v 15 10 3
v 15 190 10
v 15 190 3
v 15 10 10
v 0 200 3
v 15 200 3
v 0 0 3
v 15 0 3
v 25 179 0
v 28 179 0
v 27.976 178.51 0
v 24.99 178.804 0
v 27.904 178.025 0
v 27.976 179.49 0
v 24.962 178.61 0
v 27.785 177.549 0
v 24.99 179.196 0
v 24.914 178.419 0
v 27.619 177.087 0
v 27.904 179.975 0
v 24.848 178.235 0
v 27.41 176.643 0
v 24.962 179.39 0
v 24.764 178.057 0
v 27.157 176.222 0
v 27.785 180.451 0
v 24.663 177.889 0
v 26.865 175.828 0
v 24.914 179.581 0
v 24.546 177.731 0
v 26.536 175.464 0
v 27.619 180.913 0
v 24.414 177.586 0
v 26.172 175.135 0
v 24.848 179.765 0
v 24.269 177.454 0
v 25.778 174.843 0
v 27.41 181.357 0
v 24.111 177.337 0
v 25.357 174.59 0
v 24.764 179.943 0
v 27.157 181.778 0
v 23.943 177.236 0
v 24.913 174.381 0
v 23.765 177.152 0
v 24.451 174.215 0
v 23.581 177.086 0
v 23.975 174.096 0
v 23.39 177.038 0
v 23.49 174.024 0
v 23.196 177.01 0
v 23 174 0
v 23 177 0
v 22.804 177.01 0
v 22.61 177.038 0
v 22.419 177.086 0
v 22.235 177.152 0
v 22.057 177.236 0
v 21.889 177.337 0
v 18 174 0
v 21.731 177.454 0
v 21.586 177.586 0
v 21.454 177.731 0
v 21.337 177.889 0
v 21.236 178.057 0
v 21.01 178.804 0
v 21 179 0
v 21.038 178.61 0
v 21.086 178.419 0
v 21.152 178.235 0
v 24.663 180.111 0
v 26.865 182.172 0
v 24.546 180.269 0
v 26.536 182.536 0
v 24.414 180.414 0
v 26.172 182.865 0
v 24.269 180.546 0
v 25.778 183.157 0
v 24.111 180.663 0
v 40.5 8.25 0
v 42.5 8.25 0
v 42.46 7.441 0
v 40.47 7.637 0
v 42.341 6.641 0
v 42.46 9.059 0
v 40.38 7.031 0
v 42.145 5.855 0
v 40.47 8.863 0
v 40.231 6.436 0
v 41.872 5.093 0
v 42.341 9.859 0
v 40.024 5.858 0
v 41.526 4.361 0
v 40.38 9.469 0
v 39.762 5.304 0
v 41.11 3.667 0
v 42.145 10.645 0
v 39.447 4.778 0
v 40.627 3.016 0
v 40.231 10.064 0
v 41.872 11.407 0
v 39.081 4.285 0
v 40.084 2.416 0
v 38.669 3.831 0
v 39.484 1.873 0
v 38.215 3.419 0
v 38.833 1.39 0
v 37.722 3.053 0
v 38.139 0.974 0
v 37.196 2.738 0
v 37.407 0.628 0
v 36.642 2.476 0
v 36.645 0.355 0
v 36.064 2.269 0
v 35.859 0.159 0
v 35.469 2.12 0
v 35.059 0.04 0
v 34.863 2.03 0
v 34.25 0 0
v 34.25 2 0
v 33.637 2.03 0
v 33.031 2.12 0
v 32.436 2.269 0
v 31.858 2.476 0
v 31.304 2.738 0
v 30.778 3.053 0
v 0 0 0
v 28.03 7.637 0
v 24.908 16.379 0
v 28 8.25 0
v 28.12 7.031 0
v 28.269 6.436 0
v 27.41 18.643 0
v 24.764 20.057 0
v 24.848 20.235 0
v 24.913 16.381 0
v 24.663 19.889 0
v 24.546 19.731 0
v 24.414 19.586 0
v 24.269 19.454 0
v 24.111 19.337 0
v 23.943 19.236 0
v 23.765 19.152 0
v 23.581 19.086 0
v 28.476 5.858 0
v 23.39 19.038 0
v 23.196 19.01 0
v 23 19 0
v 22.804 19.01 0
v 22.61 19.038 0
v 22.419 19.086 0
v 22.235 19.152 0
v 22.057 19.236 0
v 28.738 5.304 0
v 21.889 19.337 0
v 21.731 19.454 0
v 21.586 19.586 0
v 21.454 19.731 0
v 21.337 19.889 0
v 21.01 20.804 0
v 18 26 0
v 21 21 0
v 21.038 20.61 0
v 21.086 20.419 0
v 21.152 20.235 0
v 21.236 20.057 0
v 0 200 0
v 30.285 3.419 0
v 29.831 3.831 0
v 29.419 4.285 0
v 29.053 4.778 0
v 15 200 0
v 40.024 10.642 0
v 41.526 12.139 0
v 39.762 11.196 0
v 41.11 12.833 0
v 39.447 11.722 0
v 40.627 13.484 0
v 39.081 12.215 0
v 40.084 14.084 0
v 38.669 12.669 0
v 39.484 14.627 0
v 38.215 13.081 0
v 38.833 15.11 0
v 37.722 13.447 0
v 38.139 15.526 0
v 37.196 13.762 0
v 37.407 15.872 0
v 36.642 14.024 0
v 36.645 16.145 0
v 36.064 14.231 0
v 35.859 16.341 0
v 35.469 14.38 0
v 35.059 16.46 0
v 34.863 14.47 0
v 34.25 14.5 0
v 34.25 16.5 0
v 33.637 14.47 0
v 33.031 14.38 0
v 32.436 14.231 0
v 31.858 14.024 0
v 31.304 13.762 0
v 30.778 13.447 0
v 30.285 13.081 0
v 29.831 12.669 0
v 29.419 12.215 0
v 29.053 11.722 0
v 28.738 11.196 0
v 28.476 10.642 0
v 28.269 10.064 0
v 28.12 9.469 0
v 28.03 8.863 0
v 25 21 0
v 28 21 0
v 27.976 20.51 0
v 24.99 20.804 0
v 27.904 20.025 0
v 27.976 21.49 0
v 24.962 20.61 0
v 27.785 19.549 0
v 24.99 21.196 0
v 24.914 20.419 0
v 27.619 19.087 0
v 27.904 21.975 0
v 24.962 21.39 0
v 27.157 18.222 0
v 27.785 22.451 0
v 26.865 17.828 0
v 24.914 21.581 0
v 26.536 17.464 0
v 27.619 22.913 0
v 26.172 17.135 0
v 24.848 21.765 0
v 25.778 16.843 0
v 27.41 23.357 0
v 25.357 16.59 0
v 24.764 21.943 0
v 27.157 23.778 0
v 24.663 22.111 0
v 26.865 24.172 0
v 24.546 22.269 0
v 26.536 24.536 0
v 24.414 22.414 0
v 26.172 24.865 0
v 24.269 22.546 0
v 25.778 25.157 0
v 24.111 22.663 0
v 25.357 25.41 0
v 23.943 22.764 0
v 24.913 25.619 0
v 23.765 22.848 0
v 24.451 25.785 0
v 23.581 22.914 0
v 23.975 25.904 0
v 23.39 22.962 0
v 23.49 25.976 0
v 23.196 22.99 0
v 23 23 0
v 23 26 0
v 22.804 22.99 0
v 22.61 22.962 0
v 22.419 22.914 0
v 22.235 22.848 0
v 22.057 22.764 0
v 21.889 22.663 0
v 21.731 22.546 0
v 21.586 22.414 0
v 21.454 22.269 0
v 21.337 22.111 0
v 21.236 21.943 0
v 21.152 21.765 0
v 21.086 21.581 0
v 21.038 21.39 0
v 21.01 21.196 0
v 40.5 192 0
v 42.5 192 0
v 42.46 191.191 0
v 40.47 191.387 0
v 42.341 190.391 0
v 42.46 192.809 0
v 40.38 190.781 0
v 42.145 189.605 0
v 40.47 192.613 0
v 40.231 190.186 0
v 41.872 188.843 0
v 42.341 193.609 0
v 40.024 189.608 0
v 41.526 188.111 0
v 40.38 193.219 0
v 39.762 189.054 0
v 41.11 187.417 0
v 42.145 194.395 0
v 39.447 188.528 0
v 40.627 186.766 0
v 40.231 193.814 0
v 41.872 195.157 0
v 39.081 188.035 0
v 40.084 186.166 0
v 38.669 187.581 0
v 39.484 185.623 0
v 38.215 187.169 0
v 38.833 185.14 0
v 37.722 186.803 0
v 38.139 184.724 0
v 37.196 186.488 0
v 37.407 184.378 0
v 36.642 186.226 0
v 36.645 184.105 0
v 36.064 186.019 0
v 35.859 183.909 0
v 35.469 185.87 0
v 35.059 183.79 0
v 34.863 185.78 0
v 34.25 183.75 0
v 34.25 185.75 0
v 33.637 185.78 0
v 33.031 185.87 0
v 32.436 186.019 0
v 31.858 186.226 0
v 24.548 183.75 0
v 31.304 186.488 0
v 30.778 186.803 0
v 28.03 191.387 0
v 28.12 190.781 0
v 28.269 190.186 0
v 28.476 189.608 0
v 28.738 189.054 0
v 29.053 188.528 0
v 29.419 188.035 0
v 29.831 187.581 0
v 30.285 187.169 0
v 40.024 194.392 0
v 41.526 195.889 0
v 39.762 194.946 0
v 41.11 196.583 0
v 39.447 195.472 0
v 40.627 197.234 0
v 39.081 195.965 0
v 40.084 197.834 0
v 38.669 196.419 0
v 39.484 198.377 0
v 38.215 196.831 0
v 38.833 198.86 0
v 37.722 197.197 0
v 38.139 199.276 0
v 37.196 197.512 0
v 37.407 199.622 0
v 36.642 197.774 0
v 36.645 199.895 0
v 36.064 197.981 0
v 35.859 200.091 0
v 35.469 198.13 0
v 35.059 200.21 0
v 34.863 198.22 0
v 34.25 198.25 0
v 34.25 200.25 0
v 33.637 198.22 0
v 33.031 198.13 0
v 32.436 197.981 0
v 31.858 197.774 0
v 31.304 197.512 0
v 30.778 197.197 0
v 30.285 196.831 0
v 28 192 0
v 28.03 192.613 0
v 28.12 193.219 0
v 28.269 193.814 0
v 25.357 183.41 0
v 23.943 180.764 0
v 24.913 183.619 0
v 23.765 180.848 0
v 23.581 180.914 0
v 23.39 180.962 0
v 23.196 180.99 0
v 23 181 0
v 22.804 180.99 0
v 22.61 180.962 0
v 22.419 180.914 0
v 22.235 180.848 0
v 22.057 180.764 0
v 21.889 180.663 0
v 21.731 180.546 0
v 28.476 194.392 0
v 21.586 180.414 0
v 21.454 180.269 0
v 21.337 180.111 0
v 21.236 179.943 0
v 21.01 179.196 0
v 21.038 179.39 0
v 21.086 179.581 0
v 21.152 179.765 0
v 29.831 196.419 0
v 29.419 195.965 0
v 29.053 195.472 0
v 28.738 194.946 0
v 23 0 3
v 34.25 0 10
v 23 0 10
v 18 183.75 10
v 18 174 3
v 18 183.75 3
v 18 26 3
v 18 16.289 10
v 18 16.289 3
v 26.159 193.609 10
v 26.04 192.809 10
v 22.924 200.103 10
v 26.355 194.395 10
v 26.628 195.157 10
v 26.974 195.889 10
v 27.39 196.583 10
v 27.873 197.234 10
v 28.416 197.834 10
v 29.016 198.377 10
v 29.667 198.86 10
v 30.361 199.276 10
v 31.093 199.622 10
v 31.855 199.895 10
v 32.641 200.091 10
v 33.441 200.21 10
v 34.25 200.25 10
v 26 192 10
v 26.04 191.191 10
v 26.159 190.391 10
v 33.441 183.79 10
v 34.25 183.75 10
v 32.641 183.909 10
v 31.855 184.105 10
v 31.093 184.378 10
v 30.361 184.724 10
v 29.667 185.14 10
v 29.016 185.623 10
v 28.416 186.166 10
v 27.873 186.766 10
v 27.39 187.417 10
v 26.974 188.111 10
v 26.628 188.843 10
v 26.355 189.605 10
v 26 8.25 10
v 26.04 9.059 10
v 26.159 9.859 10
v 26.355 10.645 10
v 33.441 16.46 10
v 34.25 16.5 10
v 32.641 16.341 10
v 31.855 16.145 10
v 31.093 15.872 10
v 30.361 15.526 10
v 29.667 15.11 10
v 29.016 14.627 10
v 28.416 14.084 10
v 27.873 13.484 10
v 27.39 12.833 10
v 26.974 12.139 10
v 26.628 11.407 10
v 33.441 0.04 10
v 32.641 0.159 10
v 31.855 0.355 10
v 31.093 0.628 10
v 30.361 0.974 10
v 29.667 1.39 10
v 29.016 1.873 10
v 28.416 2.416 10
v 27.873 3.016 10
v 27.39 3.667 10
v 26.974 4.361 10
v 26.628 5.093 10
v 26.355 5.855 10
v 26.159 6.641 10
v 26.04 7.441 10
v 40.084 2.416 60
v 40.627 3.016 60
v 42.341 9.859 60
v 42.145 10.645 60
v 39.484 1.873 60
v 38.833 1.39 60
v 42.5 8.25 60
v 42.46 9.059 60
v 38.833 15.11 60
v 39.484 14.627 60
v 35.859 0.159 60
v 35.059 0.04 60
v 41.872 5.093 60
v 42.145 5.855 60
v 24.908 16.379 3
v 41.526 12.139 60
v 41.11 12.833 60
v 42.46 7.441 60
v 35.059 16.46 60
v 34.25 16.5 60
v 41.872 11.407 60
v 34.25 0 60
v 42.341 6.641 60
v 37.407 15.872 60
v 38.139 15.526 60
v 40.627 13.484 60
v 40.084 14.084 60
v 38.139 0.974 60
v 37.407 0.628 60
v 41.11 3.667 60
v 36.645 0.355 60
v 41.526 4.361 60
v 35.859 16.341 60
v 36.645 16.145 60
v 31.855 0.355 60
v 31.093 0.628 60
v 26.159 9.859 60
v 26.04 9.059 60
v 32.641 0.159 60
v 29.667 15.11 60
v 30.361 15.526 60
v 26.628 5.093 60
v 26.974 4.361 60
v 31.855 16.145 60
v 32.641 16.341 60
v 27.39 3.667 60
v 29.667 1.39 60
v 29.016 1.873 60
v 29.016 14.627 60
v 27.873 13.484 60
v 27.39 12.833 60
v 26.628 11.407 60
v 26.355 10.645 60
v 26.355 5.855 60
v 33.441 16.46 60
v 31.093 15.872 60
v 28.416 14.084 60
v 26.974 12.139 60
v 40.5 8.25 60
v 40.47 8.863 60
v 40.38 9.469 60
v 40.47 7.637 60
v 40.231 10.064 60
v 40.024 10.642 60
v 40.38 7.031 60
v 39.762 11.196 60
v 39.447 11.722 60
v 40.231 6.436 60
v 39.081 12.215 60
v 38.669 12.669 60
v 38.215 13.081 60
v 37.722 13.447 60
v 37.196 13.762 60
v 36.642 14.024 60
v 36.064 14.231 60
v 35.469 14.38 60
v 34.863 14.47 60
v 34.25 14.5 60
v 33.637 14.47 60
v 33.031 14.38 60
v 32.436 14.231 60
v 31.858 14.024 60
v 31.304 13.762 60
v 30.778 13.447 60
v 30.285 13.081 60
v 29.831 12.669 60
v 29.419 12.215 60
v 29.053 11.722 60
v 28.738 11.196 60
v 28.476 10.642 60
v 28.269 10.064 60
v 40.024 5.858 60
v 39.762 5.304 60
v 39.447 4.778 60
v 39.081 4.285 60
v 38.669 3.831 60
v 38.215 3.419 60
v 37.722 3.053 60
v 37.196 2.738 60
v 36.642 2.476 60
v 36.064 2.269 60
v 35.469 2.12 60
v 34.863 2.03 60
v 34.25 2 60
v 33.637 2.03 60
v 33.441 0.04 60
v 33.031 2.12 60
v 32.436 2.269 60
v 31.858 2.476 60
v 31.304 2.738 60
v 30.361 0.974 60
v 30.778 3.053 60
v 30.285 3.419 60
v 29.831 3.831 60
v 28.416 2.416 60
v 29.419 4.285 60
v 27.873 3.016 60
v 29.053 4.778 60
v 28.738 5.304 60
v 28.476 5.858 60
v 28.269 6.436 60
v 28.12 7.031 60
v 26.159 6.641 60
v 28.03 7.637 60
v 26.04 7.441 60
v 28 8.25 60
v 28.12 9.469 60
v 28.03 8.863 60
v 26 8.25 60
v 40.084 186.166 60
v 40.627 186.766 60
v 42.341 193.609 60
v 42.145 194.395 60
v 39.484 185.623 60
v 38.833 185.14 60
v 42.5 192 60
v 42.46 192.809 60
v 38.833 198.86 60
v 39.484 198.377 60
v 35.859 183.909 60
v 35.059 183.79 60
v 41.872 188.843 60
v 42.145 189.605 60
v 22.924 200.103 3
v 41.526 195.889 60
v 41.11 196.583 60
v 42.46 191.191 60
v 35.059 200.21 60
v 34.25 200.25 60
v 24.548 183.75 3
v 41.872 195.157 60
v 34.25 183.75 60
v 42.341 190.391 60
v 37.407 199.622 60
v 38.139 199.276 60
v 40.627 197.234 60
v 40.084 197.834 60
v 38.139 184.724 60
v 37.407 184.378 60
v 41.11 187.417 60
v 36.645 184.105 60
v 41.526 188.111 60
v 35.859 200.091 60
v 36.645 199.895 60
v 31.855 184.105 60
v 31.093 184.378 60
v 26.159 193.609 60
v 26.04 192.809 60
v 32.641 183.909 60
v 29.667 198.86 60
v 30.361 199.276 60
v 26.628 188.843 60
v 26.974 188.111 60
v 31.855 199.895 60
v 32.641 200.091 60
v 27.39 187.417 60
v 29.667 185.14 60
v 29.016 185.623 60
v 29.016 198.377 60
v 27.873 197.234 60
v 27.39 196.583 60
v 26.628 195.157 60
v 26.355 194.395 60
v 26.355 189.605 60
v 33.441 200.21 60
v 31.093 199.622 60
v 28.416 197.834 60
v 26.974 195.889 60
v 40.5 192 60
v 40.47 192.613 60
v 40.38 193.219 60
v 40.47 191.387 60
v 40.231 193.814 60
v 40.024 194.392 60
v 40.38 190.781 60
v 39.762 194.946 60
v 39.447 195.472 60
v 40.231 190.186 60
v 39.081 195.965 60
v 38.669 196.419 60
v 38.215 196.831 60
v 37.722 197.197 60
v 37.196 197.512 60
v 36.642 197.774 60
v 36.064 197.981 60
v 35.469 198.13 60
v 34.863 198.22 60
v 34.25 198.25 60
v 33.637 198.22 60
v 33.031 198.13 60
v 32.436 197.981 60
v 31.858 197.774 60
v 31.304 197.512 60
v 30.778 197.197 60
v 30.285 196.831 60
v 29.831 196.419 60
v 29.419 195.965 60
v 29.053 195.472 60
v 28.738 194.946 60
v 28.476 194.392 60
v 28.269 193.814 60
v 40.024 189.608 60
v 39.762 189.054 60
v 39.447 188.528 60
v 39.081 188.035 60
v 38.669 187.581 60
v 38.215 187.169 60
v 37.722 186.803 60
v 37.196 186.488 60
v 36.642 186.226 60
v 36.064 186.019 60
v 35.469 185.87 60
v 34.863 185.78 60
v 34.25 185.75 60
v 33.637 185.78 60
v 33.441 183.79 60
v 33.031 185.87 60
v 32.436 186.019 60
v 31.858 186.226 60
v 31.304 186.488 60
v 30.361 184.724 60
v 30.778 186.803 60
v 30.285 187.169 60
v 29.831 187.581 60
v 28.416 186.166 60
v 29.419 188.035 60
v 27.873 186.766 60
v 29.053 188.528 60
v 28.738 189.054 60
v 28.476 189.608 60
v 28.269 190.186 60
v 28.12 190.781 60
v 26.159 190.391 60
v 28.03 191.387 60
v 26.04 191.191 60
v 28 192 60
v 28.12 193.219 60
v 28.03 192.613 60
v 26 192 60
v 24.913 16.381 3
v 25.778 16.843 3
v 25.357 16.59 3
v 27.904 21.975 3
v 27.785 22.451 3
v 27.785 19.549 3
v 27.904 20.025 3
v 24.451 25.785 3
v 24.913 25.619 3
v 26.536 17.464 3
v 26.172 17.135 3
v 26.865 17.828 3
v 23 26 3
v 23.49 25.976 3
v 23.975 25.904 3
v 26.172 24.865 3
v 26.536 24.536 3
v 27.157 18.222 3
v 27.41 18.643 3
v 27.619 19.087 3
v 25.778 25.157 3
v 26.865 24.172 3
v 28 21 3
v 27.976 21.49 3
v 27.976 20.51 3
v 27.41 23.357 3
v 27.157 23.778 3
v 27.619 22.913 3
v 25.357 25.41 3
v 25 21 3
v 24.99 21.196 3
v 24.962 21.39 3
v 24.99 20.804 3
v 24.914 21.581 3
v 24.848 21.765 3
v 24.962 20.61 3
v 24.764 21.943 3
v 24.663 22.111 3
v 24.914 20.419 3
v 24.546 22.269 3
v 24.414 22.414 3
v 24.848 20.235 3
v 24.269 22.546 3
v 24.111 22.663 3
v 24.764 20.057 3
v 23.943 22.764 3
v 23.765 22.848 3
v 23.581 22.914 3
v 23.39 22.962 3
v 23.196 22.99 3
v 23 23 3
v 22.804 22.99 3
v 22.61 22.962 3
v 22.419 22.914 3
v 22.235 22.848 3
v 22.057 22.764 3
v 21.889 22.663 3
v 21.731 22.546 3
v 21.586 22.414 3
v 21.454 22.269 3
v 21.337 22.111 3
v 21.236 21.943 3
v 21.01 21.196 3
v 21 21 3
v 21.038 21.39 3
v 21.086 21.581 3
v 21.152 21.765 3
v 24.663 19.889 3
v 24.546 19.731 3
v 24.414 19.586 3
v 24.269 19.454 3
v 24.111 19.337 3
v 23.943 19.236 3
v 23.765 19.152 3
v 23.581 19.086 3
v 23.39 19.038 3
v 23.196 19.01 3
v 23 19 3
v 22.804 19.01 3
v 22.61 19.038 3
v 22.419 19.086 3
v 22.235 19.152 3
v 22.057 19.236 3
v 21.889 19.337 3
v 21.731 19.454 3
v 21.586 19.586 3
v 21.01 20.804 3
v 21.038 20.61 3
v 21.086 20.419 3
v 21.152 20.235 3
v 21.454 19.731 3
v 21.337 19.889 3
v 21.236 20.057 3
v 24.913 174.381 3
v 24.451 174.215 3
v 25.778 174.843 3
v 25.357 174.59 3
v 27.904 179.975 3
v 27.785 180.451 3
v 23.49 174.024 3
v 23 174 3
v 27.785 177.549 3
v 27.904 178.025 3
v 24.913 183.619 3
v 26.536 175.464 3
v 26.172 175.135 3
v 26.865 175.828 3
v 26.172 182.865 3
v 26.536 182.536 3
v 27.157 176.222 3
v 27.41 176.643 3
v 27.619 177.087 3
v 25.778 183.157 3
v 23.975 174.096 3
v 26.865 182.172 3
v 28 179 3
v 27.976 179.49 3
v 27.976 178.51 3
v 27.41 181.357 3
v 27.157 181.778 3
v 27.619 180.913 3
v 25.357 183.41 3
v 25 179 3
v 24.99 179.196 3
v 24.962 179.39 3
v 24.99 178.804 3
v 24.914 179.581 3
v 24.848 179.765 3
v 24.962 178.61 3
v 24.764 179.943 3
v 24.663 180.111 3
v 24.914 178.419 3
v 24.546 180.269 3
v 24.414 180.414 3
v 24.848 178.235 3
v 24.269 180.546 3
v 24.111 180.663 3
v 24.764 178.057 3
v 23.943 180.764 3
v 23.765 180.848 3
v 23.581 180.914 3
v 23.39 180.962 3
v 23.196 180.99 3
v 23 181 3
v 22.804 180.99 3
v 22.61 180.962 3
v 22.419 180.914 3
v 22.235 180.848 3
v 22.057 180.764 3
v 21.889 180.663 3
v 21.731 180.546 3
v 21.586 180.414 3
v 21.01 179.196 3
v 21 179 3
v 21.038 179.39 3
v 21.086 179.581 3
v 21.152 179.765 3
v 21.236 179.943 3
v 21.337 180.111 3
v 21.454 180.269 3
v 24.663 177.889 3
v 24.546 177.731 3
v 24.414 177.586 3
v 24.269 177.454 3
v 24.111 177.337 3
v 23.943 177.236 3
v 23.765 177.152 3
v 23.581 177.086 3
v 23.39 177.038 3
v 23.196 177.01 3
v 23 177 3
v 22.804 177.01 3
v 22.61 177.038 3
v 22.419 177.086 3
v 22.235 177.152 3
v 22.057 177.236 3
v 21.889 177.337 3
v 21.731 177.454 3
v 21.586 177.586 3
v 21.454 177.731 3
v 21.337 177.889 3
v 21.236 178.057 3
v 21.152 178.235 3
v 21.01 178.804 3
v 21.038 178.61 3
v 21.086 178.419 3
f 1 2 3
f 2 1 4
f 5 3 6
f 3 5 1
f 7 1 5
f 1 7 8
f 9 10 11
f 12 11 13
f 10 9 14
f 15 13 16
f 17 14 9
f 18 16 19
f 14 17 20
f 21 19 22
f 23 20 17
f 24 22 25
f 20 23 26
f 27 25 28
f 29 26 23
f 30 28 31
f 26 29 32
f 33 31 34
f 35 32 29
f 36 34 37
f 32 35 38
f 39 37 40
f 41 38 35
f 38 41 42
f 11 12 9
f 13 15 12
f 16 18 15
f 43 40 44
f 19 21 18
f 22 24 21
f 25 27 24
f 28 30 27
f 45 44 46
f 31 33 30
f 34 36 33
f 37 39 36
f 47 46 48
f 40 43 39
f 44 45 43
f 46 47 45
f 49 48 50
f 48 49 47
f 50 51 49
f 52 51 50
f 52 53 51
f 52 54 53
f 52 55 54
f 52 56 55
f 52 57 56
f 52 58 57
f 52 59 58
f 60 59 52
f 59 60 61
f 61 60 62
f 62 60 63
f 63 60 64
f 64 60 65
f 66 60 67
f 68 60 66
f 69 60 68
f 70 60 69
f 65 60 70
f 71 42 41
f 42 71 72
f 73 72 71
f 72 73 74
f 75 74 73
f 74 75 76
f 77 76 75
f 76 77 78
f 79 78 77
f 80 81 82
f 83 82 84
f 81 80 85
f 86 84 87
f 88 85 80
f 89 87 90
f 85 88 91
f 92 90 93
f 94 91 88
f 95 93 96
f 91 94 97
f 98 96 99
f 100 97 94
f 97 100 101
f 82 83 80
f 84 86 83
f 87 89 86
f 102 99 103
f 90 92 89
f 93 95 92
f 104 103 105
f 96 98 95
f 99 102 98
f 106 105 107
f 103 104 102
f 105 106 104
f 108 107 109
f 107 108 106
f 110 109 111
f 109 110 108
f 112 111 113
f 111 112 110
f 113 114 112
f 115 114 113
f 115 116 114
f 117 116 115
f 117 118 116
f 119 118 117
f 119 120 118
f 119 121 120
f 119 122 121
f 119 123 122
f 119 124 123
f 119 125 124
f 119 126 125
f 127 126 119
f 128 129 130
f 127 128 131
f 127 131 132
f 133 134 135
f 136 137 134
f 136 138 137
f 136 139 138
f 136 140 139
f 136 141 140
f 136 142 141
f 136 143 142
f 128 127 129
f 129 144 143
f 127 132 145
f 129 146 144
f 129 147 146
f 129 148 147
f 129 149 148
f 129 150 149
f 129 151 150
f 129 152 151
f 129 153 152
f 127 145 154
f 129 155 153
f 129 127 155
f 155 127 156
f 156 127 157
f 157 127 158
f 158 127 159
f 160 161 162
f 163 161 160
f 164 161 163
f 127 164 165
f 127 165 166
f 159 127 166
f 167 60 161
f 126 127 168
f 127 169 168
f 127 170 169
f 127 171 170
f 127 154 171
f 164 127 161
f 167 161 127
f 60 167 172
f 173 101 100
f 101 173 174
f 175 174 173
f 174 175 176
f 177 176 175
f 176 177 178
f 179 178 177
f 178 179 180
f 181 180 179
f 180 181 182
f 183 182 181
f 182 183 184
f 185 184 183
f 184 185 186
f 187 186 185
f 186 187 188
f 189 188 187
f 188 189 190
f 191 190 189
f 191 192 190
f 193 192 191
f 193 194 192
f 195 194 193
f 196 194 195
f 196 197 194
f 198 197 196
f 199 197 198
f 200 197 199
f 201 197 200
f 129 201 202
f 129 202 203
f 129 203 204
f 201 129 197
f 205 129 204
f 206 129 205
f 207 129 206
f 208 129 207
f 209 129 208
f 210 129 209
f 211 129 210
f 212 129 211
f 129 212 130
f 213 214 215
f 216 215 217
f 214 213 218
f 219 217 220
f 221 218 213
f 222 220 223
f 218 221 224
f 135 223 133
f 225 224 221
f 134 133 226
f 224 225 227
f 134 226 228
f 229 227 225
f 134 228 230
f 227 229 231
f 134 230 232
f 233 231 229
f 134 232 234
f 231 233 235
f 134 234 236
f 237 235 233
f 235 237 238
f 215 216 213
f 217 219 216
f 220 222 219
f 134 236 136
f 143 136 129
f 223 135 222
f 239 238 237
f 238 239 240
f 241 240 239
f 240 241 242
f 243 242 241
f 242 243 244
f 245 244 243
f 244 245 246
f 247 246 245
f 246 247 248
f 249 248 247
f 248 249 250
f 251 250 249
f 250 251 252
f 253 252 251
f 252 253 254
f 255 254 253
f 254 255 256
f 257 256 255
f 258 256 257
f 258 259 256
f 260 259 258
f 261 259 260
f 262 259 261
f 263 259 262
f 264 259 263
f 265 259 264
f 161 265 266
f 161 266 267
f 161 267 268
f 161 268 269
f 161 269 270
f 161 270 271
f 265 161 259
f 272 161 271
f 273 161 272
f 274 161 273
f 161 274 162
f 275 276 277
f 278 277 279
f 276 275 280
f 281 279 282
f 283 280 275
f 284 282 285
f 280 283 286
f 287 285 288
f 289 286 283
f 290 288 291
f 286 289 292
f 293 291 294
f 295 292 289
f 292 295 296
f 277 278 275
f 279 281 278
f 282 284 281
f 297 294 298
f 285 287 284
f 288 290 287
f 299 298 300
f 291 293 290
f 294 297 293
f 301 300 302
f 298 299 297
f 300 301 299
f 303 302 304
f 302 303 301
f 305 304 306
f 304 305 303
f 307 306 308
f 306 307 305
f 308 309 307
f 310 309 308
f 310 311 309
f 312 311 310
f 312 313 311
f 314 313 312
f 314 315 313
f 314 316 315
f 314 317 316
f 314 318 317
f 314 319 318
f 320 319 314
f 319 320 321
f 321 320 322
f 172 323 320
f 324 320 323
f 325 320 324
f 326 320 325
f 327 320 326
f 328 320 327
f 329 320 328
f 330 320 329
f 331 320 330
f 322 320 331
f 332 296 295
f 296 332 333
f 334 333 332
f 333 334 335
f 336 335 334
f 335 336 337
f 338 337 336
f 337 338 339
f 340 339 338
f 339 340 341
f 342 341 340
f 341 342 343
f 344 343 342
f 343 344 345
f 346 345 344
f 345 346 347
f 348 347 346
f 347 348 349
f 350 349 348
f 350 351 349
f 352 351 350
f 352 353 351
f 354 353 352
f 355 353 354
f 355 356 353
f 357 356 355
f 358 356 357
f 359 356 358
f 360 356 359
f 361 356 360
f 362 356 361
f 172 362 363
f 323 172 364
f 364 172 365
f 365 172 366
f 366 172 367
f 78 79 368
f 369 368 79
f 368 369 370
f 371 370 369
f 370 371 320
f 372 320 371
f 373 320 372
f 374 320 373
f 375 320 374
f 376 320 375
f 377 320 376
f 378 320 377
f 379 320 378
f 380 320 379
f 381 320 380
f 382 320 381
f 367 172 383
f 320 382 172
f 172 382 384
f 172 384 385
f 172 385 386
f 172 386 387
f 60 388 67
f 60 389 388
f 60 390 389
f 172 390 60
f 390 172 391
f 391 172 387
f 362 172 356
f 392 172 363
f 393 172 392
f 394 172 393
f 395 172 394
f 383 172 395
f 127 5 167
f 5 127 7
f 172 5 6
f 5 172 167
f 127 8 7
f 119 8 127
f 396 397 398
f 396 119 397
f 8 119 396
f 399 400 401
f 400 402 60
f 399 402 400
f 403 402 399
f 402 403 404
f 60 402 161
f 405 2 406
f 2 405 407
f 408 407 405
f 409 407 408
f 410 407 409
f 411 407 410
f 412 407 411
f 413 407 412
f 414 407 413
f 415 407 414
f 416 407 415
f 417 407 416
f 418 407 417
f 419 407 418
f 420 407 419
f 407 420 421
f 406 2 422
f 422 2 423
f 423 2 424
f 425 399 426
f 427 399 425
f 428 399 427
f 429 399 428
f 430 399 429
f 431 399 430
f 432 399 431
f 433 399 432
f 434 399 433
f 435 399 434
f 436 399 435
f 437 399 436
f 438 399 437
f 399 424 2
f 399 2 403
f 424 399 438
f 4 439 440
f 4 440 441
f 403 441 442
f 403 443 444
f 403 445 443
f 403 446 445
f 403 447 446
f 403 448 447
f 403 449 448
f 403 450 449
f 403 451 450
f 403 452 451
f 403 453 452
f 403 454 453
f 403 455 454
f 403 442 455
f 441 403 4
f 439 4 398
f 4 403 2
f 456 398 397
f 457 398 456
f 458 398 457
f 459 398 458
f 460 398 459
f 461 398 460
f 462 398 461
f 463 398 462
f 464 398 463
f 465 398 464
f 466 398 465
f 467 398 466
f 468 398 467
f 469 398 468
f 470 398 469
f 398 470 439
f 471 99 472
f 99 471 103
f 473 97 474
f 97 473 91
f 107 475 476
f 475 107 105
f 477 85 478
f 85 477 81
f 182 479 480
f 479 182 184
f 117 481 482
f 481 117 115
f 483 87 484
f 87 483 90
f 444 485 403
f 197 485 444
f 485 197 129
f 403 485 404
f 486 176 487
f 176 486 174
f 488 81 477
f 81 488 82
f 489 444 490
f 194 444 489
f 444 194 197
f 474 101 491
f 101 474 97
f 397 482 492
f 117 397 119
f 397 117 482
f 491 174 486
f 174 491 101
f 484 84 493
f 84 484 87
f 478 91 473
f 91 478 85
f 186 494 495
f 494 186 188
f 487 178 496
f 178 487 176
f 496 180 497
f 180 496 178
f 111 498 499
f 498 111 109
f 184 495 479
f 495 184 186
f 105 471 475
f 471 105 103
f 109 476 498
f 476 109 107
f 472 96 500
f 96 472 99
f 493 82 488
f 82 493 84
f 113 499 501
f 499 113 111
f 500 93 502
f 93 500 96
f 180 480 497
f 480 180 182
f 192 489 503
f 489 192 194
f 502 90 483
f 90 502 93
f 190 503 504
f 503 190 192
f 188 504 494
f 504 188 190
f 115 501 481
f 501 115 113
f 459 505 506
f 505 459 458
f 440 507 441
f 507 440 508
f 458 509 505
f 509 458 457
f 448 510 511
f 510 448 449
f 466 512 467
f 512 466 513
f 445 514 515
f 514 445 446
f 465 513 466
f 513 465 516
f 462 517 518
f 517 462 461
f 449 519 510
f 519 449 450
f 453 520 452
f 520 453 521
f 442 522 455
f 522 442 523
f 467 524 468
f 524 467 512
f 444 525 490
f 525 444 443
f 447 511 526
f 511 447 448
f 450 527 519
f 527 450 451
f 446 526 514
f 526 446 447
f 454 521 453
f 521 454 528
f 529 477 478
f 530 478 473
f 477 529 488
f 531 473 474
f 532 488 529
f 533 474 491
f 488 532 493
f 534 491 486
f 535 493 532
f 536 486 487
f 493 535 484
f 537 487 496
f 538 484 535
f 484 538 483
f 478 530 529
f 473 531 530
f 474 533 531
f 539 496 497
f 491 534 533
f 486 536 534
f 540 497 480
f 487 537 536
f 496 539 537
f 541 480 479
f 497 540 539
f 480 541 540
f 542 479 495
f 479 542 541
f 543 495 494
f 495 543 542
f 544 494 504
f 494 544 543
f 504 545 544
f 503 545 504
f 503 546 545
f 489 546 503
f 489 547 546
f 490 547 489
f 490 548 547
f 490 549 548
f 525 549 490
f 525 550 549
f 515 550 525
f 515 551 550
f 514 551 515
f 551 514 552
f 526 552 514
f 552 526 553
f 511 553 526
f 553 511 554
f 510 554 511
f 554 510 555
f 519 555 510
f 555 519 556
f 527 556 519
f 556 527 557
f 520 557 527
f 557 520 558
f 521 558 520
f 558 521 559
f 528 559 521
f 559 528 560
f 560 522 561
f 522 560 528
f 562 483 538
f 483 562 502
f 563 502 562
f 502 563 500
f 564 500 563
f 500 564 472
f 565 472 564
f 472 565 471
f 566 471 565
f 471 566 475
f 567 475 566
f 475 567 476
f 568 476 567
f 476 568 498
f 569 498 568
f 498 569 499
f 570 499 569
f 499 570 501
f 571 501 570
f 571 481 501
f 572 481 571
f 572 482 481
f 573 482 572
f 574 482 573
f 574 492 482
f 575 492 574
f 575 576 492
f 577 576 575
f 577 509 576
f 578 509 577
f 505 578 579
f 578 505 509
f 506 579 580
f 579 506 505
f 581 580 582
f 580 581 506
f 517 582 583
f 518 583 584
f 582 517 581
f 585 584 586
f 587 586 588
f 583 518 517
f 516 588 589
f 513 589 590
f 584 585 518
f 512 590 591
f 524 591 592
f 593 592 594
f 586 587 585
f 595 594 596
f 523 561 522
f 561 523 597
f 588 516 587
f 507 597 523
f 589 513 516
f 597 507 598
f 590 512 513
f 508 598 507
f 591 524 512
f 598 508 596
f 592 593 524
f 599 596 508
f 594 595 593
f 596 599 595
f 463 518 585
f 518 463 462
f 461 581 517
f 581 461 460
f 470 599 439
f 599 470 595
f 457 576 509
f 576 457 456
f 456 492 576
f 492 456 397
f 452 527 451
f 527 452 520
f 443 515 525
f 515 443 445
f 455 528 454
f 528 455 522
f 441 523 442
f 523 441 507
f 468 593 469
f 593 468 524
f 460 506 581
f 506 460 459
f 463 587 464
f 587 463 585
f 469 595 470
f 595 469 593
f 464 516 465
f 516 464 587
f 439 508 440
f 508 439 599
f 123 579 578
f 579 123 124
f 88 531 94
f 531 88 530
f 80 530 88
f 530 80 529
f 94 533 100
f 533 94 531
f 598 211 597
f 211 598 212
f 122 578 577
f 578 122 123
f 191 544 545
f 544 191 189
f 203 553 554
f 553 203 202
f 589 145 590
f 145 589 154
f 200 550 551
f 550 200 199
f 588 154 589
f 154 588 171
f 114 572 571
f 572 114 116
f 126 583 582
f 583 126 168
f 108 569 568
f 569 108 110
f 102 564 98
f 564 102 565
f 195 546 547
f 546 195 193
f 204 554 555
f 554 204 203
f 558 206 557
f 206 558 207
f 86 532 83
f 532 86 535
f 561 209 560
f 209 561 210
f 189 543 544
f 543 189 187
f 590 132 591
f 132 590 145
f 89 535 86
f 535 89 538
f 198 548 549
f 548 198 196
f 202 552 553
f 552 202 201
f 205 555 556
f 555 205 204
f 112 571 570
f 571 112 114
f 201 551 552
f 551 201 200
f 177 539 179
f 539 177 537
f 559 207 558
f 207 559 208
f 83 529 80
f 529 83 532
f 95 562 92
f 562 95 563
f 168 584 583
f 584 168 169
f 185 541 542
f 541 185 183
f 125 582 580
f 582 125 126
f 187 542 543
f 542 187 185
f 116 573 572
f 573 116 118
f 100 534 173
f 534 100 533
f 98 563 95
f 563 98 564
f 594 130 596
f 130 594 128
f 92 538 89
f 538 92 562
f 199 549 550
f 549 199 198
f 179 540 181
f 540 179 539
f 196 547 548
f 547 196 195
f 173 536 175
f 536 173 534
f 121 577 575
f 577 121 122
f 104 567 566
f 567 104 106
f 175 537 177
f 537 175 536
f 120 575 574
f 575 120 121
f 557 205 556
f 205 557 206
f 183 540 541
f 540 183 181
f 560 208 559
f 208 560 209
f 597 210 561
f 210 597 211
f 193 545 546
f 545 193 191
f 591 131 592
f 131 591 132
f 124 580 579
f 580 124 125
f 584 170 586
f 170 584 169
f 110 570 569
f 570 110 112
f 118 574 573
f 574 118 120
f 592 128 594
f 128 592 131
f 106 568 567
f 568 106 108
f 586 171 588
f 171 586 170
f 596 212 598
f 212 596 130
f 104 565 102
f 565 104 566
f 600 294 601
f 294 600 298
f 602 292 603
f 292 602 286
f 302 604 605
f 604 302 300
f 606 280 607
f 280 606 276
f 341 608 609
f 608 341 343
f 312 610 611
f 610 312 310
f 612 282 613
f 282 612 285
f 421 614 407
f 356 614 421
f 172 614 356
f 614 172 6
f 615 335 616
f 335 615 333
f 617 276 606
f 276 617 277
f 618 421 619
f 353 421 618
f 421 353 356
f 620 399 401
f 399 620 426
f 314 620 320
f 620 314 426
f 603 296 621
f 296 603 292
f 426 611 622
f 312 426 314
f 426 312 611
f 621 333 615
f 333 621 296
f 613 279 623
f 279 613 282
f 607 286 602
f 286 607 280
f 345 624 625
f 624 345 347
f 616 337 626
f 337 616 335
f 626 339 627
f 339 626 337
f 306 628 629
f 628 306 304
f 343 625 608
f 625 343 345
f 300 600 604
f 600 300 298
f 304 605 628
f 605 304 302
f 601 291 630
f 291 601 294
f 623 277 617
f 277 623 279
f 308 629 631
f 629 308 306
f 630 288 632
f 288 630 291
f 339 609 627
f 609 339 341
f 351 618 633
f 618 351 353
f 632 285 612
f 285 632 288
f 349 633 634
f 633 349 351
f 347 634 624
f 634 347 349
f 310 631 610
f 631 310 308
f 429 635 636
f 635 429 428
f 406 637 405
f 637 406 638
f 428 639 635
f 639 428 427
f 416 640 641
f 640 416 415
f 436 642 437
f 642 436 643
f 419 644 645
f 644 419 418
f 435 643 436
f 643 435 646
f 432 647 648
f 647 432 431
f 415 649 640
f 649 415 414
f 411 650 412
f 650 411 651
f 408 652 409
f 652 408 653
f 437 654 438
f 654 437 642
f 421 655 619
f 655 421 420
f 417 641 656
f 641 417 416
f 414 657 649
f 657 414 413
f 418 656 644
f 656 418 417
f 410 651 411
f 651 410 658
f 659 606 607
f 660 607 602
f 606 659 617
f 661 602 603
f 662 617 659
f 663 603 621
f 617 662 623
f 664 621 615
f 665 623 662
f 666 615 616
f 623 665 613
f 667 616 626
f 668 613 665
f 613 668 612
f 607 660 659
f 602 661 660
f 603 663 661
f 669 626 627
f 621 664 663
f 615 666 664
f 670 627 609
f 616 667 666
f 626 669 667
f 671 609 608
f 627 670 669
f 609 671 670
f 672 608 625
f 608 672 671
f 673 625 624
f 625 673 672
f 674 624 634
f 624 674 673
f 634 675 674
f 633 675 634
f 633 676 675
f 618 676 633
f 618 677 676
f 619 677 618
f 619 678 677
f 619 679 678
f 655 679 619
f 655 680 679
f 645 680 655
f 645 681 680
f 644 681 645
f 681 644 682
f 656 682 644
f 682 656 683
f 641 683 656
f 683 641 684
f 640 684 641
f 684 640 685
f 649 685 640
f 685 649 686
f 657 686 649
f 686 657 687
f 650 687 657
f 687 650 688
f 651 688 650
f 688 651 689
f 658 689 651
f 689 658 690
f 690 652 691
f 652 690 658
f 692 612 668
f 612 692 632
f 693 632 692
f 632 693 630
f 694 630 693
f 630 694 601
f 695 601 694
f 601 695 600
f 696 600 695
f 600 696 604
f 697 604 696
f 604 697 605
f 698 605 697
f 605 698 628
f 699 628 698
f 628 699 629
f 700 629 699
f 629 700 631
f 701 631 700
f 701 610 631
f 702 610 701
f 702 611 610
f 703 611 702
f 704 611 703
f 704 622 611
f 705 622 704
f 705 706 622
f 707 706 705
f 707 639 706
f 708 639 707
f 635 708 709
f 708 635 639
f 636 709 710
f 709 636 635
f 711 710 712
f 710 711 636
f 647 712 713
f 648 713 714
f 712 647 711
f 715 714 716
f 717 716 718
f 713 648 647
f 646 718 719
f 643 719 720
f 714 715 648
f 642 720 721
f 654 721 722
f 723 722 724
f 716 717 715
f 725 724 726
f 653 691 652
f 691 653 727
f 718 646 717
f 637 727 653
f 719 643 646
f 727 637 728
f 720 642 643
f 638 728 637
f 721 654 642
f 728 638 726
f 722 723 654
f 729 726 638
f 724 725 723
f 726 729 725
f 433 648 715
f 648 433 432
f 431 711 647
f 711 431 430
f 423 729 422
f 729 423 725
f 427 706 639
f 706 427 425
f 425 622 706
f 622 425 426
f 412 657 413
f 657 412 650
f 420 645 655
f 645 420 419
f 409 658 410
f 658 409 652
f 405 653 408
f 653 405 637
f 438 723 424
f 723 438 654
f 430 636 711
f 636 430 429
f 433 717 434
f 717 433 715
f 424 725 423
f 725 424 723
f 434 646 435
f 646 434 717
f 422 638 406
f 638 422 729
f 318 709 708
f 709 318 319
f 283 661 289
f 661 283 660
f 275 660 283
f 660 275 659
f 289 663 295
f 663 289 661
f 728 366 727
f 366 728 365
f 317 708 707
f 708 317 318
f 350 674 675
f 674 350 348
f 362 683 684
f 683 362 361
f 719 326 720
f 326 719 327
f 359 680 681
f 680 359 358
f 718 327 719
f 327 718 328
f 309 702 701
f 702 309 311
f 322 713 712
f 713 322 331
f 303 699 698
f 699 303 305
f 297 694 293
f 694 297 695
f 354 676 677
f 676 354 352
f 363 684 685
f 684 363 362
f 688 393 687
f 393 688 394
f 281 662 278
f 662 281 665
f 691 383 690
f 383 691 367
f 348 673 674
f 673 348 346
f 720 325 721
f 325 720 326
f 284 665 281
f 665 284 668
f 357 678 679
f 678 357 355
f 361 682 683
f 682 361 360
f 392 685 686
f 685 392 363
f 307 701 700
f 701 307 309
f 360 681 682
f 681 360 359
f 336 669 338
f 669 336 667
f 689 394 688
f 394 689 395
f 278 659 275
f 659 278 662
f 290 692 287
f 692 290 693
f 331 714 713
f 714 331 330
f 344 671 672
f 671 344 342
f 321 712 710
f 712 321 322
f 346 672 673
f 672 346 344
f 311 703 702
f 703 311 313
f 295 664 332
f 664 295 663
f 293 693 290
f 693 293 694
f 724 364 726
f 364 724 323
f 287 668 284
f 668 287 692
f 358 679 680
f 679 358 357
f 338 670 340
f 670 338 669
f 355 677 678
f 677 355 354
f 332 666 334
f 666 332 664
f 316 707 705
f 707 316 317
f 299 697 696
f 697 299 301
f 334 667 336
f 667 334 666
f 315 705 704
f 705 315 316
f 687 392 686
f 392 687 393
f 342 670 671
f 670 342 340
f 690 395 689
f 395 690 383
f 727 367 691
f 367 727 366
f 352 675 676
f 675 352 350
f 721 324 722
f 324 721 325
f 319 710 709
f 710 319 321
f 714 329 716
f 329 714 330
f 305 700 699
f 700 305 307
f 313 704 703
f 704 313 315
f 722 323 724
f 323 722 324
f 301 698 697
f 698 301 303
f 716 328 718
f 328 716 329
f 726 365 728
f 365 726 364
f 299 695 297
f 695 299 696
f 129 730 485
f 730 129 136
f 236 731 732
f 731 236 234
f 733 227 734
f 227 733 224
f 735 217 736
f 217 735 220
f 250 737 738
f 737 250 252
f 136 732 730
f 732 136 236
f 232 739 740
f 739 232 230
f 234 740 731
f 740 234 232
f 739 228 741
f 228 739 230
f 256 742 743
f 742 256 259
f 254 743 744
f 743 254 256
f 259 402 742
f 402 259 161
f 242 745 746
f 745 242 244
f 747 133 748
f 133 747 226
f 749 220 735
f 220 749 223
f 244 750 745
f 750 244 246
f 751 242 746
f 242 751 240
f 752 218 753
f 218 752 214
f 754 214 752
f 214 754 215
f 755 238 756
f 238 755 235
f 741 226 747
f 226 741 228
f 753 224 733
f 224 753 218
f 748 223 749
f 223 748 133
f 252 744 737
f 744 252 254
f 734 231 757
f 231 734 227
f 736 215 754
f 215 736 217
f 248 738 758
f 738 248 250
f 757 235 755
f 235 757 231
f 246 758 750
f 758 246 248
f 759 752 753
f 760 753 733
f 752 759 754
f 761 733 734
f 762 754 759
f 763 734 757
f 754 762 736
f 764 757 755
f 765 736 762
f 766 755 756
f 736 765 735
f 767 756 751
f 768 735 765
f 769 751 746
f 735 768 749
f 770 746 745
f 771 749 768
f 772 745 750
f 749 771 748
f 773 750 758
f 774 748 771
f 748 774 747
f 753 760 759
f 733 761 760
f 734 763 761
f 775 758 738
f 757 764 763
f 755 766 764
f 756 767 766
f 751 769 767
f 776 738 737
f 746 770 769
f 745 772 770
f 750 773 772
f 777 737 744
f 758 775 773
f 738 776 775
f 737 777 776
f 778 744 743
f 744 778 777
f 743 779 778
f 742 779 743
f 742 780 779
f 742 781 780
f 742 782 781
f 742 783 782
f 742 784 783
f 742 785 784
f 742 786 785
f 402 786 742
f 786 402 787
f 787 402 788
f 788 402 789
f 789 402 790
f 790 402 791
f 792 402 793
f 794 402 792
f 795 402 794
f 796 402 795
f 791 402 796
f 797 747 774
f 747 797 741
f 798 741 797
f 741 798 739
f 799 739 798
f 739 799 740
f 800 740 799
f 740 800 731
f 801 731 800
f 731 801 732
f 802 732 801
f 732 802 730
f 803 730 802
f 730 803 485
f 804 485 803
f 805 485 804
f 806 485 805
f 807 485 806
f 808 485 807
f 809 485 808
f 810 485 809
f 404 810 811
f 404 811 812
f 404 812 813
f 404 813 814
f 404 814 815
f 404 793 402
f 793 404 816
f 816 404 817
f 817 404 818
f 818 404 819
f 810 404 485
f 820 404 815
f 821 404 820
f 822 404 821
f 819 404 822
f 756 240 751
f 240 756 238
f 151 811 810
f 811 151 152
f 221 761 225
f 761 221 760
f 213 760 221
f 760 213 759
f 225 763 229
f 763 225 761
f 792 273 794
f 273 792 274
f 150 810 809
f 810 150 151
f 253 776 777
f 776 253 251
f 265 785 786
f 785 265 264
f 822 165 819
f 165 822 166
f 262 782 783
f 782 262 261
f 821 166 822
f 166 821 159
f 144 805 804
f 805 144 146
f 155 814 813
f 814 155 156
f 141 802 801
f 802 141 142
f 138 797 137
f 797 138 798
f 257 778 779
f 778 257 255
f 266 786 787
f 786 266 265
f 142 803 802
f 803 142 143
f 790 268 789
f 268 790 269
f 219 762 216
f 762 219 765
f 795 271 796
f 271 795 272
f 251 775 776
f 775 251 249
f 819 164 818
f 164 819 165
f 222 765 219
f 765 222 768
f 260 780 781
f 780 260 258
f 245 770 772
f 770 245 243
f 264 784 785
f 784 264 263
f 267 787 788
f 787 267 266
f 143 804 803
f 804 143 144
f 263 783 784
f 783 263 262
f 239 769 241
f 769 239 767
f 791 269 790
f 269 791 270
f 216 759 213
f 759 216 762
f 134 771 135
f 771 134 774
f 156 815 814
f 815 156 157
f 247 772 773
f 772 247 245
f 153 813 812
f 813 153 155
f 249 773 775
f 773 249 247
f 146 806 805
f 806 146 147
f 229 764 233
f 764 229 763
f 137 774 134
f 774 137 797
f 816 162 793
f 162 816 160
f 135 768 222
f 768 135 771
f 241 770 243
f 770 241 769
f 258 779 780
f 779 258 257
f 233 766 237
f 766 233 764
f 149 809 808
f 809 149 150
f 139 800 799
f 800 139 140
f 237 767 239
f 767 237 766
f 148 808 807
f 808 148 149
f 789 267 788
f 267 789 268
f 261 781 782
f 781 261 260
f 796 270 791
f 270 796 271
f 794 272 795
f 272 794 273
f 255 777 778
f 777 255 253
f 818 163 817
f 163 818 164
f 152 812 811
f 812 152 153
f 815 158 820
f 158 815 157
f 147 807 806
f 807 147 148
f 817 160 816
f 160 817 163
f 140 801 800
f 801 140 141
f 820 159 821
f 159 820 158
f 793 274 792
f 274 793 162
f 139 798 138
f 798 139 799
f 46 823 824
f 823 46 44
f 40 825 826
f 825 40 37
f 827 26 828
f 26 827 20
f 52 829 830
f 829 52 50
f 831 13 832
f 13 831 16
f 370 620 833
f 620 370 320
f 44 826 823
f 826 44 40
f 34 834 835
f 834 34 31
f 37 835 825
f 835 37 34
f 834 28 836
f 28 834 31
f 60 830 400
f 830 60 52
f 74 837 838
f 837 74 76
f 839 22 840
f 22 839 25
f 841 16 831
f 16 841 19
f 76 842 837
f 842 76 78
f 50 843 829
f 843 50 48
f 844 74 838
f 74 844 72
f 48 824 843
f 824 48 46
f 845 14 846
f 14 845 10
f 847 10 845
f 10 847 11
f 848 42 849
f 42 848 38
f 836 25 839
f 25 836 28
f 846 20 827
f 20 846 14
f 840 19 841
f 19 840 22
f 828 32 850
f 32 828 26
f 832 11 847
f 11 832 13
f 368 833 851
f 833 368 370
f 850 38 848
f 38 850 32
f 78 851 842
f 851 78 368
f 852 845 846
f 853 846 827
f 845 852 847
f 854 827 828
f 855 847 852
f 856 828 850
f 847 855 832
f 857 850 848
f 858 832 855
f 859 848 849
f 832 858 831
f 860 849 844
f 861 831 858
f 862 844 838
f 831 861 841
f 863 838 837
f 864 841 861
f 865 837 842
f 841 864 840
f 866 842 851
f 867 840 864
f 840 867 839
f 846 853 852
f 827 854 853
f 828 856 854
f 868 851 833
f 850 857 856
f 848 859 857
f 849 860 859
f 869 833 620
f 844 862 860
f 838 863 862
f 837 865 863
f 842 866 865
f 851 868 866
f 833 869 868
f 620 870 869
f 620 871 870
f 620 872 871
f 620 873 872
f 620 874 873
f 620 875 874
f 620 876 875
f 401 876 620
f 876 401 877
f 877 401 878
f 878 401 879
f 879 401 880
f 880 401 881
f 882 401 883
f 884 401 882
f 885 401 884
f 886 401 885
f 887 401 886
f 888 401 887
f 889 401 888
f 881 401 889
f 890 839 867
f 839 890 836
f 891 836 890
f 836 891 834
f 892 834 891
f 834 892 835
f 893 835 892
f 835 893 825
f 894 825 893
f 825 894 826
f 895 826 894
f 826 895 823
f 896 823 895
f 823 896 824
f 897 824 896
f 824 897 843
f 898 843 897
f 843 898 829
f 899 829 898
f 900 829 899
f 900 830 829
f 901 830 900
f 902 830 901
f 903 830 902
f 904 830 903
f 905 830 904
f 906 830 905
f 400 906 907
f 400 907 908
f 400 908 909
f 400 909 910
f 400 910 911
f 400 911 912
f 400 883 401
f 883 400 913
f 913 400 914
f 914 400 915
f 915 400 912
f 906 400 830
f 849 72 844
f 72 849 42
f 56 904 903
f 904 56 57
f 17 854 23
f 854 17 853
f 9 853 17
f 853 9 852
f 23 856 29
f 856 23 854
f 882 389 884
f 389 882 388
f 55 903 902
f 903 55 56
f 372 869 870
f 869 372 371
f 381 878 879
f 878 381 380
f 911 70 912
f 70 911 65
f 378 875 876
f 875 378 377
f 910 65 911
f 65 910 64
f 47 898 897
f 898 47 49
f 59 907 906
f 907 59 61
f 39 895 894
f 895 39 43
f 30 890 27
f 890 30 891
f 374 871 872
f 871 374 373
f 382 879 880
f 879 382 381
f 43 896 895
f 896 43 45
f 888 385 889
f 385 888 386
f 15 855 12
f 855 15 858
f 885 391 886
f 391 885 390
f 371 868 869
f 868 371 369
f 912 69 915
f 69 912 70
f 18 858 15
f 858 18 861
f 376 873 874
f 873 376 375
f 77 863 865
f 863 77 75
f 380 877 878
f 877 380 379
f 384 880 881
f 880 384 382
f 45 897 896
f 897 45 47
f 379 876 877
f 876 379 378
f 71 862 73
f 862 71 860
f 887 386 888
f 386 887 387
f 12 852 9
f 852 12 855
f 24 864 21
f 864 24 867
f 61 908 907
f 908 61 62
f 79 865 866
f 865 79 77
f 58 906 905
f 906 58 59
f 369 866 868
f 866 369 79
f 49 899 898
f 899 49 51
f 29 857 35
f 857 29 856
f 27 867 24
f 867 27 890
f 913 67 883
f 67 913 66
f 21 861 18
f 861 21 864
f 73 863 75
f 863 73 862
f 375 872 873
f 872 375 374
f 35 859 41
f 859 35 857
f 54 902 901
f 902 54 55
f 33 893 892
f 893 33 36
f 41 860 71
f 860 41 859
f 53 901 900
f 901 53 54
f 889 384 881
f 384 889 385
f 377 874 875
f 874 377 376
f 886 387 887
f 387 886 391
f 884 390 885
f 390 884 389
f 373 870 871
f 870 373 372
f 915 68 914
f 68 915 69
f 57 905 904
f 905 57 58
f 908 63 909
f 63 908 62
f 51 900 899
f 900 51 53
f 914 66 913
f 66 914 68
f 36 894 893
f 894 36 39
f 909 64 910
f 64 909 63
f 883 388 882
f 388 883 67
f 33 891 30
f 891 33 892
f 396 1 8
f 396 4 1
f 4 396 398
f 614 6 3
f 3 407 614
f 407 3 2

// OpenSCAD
screw_mount = true; //Set true to add mount points, false for no mount points.
shelf_depth = 200;
shelf_heigth = 57;
support_tube_radius = 6.25;

lip_width = 15;
support_clearance = 10;

$fn= $preview ? 32 : 64;
module support_tube()
{
    difference(){
        union(){
            hull(){
                translate([0, 0, 0])
                    cube([3, support_tube_radius+10, 10], false);
                translate([3+support_tube_radius+support_clearance, support_tube_radius+2, 5])
                    cylinder(10, support_tube_radius+2, support_tube_radius+2, true);
            }
            translate([3+support_tube_radius+support_clearance, support_tube_radius+2, (shelf_heigth+3)/2])
                cylinder(shelf_heigth+3, support_tube_radius+2, support_tube_radius+2, true);
        }
    translate([3+support_tube_radius+support_clearance, support_tube_radius+2, (shelf_heigth+3)/2])
        cylinder(shelf_heigth+3, support_tube_radius, support_tube_radius, true);
    }
}

module mounting_ear()
{
    difference(){   
        hull(){
            cube([3, 10, 3], false);
            translate([5, 5, 1.5]) cylinder(3, 5, 5, true);
        }
        translate([5, 5, 1.5]) cylinder(3, 2, 2, true);
    }
}
difference(){
    union(){  
        union(){
            cube([lip_width, shelf_depth, 3], false);
            translate([lip_width, 0, 0]) cube([3, shelf_depth, 10], false);
        }
        translate([lip_width, 0, 0]) support_tube();
        translate([lip_width, shelf_depth-support_tube_radius-10, 0]) support_tube();

        if(screw_mount){
            translate([lip_width+3, 16, 0]) mounting_ear();
            translate([lip_width+3, shelf_depth-10-16, 0]) mounting_ear();
        }
    }
    //ramp cuts
    translate([lip_width,0,3])
        linear_extrude(10)
            polygon(points=[[0,0],[8,0],[0,10]]);
    translate([lip_width,0,3])
        linear_extrude(10)
                polygon(points=[[0,shelf_depth+0.1],[8,shelf_depth+0.2],[0,shelf_depth-10]]);
}
